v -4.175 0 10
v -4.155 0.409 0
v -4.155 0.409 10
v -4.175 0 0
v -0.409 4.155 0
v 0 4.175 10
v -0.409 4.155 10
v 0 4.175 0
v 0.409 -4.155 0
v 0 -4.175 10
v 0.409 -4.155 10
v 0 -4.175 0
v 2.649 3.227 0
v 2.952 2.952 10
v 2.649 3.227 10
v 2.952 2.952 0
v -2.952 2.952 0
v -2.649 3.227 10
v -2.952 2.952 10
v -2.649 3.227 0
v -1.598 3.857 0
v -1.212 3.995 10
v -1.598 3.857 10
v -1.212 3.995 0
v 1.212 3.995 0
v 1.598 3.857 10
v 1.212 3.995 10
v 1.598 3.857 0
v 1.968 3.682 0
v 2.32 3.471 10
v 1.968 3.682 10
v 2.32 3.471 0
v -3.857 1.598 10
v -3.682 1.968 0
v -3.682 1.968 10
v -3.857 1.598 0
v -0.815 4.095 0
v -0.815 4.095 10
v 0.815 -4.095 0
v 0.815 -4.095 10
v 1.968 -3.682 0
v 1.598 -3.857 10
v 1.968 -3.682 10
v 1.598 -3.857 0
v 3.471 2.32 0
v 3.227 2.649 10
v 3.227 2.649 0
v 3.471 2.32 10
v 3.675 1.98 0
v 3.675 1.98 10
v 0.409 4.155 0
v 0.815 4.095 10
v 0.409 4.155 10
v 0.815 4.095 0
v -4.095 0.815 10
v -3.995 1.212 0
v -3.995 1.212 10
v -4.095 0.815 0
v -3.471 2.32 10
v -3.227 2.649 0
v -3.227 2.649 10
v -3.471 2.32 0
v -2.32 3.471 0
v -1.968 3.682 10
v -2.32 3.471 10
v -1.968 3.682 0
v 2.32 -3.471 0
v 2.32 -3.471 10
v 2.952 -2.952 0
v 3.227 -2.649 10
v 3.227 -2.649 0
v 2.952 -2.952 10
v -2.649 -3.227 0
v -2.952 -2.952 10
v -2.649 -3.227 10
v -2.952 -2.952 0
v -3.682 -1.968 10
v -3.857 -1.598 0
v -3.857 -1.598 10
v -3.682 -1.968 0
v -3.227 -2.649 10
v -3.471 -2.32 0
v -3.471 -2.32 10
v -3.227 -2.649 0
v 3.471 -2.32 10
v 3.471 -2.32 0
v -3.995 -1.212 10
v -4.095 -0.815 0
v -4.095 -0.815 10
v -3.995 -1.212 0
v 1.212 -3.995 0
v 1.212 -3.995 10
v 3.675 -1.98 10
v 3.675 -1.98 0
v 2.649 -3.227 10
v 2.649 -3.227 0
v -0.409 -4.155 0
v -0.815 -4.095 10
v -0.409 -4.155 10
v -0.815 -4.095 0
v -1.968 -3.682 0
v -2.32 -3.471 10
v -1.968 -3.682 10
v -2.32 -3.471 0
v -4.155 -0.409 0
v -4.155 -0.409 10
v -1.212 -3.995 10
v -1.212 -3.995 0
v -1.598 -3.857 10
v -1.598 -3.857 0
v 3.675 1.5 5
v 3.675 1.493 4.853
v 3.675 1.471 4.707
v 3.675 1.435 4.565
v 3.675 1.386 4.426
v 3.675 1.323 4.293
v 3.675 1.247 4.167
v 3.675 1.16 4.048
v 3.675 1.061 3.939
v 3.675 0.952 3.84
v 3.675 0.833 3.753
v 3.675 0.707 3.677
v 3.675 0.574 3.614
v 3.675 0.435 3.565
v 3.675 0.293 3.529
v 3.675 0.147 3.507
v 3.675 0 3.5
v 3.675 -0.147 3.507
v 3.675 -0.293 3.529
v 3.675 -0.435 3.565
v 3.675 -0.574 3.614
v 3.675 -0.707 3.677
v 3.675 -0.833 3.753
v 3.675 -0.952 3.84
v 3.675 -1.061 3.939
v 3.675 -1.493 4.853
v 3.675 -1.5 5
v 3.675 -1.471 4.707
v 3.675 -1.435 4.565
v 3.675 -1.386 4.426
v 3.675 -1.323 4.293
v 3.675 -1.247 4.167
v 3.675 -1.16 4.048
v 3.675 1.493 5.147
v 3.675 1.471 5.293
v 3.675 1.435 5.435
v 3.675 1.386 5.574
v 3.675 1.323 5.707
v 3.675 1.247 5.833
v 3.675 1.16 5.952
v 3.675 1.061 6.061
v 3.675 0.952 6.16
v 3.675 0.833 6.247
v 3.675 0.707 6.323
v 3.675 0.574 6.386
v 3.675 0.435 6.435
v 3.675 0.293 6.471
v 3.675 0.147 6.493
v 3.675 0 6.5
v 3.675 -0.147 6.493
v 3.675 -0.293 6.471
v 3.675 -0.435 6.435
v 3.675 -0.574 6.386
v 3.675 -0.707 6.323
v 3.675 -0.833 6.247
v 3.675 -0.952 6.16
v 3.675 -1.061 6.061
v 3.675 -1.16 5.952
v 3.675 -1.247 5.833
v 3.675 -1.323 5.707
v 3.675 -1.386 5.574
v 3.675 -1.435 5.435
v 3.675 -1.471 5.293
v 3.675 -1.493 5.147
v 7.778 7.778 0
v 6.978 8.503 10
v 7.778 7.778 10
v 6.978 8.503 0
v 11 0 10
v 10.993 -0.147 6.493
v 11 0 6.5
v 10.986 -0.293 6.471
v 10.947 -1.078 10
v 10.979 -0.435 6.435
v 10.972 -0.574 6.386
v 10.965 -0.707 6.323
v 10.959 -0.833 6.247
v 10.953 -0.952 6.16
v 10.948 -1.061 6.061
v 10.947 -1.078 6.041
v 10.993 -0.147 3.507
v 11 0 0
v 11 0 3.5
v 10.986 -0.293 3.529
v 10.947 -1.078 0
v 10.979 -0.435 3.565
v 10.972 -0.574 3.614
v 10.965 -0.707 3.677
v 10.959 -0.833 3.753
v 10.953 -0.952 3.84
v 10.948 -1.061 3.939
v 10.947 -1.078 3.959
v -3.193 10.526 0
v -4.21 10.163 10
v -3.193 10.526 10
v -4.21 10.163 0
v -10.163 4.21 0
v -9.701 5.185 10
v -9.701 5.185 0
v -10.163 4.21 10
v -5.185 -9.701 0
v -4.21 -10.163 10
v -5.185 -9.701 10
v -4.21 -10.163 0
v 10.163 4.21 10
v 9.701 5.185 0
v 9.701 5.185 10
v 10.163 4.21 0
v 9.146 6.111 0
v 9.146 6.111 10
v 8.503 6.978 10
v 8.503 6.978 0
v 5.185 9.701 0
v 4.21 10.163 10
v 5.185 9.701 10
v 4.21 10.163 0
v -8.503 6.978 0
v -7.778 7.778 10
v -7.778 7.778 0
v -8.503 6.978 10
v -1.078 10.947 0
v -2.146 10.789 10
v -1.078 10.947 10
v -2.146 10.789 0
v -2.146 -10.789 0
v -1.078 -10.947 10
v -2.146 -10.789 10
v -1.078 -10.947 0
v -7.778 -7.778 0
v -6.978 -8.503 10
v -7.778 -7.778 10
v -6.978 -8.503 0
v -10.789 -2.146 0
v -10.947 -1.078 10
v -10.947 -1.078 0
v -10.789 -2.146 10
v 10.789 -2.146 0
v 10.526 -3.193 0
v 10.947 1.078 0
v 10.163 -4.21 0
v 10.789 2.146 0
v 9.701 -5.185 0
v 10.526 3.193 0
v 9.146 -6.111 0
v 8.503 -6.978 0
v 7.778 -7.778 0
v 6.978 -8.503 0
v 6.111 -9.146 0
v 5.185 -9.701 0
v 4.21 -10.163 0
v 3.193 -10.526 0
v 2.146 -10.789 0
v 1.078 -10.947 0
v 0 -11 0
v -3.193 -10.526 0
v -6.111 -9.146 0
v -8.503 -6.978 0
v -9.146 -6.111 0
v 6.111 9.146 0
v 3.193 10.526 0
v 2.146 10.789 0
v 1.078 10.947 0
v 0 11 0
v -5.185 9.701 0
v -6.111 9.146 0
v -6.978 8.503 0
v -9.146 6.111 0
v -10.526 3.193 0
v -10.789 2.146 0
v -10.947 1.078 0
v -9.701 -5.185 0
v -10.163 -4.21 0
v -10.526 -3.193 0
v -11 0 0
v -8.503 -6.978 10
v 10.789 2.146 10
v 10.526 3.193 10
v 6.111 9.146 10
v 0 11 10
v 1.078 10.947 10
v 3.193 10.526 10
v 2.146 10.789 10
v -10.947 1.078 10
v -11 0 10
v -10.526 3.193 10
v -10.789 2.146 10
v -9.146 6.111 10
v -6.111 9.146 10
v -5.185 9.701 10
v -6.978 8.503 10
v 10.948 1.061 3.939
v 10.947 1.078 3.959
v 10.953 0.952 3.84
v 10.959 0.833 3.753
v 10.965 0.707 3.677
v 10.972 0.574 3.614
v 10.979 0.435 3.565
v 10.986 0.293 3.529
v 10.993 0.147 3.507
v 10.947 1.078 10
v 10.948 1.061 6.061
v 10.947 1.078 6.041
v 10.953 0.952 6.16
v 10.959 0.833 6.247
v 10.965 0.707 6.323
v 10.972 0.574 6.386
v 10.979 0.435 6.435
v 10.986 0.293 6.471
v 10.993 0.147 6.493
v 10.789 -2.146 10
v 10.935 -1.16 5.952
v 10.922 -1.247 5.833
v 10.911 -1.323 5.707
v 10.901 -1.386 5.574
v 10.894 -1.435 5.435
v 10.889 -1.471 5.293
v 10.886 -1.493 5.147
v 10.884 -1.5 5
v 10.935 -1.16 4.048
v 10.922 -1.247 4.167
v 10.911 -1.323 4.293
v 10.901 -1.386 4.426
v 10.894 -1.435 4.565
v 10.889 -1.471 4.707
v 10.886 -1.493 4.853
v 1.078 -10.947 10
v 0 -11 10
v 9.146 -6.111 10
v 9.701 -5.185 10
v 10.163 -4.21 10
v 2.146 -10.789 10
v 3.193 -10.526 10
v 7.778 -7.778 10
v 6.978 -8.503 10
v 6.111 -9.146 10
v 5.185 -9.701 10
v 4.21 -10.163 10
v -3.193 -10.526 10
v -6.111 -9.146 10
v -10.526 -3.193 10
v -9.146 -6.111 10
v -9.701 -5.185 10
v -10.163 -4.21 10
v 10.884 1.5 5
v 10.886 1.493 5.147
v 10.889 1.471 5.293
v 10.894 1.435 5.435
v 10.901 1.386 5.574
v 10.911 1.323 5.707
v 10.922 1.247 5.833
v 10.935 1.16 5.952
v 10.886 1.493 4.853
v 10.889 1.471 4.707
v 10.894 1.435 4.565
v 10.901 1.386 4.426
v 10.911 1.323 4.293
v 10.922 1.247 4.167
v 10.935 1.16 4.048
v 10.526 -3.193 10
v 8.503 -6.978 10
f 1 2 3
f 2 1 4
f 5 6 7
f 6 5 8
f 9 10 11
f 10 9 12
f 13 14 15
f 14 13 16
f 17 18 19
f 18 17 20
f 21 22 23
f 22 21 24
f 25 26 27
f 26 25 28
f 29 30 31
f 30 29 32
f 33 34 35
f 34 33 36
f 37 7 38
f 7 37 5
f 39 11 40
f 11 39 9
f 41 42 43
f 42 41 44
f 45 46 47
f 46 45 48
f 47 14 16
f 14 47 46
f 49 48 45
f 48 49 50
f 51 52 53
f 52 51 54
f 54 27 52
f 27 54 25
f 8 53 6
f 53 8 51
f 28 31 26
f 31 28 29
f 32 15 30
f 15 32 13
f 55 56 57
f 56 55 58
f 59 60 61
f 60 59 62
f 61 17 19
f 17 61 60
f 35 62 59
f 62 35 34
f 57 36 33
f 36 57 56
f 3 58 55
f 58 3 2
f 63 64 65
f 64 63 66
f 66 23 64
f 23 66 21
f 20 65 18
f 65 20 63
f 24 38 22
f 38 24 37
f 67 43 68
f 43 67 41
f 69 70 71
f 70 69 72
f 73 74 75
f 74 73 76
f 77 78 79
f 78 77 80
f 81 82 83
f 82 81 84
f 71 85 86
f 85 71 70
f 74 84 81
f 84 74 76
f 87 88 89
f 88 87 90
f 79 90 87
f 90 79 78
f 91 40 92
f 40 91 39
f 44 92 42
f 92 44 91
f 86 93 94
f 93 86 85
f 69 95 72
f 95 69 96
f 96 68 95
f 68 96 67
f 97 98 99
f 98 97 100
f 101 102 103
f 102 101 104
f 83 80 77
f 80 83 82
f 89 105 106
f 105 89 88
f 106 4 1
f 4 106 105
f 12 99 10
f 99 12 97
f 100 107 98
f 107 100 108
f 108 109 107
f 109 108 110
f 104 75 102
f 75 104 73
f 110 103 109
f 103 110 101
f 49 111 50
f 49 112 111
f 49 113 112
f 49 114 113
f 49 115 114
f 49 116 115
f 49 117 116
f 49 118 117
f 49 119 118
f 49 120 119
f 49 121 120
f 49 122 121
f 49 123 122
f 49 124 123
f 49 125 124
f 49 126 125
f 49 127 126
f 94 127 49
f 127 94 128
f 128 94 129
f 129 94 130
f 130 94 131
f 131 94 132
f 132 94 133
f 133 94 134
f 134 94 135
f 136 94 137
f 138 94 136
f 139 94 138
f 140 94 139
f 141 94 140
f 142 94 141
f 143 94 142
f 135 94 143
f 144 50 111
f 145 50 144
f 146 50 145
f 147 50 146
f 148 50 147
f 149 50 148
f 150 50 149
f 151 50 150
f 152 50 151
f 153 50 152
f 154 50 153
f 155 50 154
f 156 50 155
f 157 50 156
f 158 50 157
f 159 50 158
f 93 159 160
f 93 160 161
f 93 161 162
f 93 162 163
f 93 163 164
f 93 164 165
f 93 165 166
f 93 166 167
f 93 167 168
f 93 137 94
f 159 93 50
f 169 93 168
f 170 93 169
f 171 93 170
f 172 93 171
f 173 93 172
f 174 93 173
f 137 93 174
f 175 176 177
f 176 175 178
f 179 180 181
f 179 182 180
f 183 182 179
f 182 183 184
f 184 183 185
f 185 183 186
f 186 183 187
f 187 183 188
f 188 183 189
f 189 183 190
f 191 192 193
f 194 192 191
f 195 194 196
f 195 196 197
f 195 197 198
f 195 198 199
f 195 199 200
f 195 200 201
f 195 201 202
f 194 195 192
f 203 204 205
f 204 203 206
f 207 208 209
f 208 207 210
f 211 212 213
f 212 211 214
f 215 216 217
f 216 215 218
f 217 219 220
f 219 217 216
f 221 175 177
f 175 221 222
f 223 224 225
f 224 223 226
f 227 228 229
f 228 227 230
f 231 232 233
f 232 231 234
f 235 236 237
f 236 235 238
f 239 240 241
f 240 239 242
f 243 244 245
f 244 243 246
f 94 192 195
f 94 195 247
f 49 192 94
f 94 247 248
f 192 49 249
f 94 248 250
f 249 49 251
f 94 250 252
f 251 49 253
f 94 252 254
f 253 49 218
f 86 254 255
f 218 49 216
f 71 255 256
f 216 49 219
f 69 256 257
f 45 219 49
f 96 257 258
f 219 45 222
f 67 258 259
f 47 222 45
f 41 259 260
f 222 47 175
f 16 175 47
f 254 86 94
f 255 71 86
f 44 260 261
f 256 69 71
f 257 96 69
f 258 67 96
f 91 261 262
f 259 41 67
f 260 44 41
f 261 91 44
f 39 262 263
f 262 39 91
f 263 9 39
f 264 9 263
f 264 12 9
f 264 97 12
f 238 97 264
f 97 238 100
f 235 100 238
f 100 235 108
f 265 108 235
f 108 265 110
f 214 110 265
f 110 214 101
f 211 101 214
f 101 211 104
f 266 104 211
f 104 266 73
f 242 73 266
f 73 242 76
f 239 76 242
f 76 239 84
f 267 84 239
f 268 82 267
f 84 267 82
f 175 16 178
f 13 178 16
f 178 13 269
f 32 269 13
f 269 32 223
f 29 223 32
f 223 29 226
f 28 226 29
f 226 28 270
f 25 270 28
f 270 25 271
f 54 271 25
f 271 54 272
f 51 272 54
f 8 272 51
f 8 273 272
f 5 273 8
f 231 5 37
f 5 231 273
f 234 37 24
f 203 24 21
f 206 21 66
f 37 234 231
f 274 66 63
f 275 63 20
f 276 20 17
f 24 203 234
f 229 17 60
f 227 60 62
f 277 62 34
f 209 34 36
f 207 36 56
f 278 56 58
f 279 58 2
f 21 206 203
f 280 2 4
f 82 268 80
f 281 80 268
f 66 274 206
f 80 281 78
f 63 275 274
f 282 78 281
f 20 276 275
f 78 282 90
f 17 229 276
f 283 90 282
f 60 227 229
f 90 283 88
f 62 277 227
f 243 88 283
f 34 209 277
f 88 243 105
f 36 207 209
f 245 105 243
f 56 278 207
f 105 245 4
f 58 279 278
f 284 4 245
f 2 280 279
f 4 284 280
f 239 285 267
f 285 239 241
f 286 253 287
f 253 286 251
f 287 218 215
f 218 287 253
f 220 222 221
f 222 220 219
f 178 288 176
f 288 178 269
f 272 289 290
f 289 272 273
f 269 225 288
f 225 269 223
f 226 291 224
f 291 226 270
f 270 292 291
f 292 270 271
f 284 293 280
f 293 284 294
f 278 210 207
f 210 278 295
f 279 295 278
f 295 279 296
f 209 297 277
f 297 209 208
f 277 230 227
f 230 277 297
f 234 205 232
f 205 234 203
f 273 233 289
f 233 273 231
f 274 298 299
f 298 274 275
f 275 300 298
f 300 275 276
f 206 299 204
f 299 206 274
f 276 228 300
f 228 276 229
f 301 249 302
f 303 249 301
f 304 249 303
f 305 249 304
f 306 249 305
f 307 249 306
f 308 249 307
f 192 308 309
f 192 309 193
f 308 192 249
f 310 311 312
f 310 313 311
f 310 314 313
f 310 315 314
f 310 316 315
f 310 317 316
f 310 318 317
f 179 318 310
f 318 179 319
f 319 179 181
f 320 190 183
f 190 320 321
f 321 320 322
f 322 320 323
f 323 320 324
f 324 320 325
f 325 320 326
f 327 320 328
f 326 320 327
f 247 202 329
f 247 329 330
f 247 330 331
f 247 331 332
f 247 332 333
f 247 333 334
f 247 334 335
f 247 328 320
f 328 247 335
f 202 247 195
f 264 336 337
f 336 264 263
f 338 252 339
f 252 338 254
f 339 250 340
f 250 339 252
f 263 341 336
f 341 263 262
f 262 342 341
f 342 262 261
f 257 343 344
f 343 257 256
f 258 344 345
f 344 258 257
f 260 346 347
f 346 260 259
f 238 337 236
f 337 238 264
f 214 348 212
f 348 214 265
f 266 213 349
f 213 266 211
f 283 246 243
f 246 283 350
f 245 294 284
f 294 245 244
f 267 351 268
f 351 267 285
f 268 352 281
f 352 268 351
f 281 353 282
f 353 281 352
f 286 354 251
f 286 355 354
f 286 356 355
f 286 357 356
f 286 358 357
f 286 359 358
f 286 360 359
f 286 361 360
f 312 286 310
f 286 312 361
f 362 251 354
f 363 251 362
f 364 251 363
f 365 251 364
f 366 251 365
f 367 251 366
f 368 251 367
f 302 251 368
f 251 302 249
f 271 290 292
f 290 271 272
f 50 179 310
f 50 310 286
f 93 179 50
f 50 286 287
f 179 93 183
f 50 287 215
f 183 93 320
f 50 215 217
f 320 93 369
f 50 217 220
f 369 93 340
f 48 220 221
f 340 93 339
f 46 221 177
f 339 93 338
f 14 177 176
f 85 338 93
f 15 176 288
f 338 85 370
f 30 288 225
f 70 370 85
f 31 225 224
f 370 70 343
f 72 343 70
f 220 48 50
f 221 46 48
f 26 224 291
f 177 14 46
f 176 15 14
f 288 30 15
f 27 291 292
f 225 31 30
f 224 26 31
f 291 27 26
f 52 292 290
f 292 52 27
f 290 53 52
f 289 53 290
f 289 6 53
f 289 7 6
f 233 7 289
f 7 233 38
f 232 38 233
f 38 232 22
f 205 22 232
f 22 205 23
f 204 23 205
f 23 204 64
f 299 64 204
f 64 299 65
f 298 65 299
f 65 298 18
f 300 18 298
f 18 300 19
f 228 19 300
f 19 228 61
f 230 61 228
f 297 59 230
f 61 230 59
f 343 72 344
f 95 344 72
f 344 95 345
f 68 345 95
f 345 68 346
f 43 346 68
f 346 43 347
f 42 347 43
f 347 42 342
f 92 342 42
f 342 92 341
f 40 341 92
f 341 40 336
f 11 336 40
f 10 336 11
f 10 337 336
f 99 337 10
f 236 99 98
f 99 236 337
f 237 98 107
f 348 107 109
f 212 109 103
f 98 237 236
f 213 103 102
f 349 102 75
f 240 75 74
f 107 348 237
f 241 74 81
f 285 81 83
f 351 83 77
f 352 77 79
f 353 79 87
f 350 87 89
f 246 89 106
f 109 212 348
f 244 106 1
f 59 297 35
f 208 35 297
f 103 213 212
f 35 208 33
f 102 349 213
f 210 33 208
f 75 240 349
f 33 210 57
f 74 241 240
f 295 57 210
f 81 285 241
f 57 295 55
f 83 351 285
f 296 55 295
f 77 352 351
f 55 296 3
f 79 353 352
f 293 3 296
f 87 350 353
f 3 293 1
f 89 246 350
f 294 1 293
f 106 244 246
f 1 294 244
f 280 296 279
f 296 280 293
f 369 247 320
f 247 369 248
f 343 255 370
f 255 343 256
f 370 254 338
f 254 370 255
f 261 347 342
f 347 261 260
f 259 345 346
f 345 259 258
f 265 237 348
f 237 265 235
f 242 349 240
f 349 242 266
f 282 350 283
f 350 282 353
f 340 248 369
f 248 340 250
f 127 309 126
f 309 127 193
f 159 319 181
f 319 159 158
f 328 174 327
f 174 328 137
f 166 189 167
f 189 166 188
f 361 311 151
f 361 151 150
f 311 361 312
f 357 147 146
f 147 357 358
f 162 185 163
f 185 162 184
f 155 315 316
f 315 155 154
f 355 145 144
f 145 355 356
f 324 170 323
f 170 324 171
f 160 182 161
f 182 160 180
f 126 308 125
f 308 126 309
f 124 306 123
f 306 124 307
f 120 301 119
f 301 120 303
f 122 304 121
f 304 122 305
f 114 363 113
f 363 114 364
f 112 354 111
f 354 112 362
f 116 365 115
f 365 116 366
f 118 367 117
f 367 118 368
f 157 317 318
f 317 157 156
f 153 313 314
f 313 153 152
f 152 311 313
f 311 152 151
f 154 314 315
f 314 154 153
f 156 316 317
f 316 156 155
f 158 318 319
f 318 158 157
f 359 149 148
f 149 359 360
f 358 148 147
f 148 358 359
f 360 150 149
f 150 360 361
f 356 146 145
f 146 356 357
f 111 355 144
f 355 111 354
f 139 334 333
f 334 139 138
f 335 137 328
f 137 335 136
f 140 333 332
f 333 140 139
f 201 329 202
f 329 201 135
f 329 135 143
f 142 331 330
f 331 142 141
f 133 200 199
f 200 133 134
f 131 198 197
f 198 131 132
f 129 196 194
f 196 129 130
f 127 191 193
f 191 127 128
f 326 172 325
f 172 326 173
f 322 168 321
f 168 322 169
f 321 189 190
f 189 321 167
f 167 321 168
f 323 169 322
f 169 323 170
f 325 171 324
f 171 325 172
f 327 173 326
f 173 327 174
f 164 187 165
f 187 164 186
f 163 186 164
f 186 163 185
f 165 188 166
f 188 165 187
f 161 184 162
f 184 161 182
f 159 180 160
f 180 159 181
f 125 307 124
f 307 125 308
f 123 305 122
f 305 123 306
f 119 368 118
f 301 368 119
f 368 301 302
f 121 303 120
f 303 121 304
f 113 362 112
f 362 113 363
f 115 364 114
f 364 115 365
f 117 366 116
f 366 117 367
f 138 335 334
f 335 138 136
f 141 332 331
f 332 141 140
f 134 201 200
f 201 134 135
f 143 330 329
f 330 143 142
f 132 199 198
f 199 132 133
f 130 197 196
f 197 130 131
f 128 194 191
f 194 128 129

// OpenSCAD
// Gen-CJ — shaft collar with D-flat bore (set screw bears on the flat); print x4
include <parameters.scad>;
$fn = 64;
// D-flat keyed bore: flat faces +X (angle 0 = magnet pocket 0 = index notch)
module dflat_bore(h) {
    intersection() {
        cylinder(d=shaft_bore, h=h);
        translate([-shaft_bore, -shaft_bore, 0]) cube([shaft_bore + dflat_x, 2*shaft_bore, h]);
    }
}

od = 22; h = collar_h; set_d = 3.0;
difference() {
    cylinder(d=od, h=h);
    translate([0, 0, -0.1]) dflat_bore(h + 0.2);
    translate([0, 0, h/2]) rotate([0, 90, 0]) cylinder(d=set_d, h=od);
}
